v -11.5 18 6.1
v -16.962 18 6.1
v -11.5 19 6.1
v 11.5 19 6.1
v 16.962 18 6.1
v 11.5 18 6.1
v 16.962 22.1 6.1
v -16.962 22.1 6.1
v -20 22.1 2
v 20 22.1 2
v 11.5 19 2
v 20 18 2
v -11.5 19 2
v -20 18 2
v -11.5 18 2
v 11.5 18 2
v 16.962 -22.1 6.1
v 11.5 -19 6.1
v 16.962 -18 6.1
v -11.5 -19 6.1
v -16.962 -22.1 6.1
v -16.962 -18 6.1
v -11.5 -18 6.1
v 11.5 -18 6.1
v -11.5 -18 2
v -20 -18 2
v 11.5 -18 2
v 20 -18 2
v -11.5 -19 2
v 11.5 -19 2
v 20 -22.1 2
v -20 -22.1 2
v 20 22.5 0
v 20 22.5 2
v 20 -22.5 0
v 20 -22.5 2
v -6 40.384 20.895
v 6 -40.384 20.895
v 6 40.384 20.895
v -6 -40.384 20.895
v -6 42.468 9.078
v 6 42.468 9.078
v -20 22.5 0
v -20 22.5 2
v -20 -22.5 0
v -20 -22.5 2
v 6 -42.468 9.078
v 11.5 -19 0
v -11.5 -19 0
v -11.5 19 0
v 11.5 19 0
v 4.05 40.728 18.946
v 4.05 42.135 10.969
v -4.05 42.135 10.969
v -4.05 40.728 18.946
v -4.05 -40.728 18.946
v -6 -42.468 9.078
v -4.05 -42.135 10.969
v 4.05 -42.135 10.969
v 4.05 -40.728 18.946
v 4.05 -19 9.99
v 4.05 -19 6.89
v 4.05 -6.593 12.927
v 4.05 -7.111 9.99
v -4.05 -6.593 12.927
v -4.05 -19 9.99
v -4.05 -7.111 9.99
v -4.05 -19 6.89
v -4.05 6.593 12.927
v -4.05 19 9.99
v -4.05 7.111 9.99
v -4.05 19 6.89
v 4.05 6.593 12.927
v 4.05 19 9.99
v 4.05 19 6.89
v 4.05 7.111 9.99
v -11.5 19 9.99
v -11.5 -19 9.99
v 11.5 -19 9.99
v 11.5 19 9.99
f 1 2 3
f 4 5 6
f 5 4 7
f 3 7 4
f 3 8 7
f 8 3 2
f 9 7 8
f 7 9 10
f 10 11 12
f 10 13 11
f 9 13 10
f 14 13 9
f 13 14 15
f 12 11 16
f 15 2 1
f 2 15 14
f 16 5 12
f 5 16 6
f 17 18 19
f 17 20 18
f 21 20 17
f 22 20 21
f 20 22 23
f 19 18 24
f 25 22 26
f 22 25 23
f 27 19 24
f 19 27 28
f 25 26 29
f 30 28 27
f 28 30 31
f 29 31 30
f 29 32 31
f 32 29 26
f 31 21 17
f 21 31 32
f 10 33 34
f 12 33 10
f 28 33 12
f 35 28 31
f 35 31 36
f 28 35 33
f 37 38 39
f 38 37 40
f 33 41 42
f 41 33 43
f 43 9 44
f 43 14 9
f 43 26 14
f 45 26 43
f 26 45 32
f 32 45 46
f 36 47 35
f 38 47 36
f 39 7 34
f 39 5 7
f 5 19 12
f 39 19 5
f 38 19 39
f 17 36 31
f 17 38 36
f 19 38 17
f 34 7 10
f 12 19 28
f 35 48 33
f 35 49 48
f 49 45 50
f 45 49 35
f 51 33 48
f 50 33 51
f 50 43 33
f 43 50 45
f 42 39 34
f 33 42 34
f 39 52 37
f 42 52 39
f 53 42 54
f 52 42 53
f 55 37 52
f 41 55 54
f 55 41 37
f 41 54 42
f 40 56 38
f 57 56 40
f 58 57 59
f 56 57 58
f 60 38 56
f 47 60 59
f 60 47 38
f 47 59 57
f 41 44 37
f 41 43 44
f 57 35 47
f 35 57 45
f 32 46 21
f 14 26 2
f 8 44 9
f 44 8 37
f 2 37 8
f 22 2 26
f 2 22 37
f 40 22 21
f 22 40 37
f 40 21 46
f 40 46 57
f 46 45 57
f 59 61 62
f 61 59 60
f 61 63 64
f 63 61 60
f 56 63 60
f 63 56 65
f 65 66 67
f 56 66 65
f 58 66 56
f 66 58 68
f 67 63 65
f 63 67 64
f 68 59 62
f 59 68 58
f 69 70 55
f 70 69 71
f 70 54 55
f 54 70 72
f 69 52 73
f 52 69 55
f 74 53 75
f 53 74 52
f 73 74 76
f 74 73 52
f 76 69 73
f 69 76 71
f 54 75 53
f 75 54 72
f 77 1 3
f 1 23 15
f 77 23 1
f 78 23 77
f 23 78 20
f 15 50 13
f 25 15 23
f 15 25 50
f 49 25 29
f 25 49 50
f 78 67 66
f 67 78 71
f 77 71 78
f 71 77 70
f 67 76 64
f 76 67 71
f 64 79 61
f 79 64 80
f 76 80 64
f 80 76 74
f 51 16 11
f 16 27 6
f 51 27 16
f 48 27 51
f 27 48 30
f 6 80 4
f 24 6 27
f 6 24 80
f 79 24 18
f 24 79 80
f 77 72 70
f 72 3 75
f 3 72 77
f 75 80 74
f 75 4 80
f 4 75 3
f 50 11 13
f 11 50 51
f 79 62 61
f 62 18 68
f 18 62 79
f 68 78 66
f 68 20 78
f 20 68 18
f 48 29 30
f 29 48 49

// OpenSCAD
bw=45;
bh=60;

rx = 100;
rdy = 4.1;
roy = 36;



abx = 40;
adx0 = 8.1;
adx1 = 12;
ady = 35;
aoy = 8;
aoz = 3;
arot = 10;

acx = 23;
acy = 38;
acz = 10;


module rails(oz=2) {
    
  translate([-rx/2,roy/2,oz]) cube([rx,rdy,rdy]);
  mirror([0,1,0]){
    translate([-rx/2,roy/2,oz]) cube([rx,rdy,rdy]);
  }
    
}


difference(){
hull(){
  translate([-abx/2,-bw/2,0])cube([abx,bw,2]);

  mirror([0,1,0]){
    translate([-adx1/2,aoy,aoz])rotate([arot,0,0])cube([adx1,ady,adx1]);
  }
  translate([-adx1/2,aoy,aoz])rotate([arot,0,0])cube([adx1,ady,adx1]);
}

  mirror([0,1,0]){
    translate([-adx0/2,aoy,aoz+adx1/2-adx0/2])rotate([arot,0,0])cube([adx0,100,adx0]);
  }
  translate([-adx0/2,aoy,aoz+adx1/2-adx0/2])rotate([arot,0,0])cube([adx0,100,adx0]);
  
  
  translate([-acx/2,-acy/2,-0.01])cube([acx,acy,acz]);
  rails();
}
